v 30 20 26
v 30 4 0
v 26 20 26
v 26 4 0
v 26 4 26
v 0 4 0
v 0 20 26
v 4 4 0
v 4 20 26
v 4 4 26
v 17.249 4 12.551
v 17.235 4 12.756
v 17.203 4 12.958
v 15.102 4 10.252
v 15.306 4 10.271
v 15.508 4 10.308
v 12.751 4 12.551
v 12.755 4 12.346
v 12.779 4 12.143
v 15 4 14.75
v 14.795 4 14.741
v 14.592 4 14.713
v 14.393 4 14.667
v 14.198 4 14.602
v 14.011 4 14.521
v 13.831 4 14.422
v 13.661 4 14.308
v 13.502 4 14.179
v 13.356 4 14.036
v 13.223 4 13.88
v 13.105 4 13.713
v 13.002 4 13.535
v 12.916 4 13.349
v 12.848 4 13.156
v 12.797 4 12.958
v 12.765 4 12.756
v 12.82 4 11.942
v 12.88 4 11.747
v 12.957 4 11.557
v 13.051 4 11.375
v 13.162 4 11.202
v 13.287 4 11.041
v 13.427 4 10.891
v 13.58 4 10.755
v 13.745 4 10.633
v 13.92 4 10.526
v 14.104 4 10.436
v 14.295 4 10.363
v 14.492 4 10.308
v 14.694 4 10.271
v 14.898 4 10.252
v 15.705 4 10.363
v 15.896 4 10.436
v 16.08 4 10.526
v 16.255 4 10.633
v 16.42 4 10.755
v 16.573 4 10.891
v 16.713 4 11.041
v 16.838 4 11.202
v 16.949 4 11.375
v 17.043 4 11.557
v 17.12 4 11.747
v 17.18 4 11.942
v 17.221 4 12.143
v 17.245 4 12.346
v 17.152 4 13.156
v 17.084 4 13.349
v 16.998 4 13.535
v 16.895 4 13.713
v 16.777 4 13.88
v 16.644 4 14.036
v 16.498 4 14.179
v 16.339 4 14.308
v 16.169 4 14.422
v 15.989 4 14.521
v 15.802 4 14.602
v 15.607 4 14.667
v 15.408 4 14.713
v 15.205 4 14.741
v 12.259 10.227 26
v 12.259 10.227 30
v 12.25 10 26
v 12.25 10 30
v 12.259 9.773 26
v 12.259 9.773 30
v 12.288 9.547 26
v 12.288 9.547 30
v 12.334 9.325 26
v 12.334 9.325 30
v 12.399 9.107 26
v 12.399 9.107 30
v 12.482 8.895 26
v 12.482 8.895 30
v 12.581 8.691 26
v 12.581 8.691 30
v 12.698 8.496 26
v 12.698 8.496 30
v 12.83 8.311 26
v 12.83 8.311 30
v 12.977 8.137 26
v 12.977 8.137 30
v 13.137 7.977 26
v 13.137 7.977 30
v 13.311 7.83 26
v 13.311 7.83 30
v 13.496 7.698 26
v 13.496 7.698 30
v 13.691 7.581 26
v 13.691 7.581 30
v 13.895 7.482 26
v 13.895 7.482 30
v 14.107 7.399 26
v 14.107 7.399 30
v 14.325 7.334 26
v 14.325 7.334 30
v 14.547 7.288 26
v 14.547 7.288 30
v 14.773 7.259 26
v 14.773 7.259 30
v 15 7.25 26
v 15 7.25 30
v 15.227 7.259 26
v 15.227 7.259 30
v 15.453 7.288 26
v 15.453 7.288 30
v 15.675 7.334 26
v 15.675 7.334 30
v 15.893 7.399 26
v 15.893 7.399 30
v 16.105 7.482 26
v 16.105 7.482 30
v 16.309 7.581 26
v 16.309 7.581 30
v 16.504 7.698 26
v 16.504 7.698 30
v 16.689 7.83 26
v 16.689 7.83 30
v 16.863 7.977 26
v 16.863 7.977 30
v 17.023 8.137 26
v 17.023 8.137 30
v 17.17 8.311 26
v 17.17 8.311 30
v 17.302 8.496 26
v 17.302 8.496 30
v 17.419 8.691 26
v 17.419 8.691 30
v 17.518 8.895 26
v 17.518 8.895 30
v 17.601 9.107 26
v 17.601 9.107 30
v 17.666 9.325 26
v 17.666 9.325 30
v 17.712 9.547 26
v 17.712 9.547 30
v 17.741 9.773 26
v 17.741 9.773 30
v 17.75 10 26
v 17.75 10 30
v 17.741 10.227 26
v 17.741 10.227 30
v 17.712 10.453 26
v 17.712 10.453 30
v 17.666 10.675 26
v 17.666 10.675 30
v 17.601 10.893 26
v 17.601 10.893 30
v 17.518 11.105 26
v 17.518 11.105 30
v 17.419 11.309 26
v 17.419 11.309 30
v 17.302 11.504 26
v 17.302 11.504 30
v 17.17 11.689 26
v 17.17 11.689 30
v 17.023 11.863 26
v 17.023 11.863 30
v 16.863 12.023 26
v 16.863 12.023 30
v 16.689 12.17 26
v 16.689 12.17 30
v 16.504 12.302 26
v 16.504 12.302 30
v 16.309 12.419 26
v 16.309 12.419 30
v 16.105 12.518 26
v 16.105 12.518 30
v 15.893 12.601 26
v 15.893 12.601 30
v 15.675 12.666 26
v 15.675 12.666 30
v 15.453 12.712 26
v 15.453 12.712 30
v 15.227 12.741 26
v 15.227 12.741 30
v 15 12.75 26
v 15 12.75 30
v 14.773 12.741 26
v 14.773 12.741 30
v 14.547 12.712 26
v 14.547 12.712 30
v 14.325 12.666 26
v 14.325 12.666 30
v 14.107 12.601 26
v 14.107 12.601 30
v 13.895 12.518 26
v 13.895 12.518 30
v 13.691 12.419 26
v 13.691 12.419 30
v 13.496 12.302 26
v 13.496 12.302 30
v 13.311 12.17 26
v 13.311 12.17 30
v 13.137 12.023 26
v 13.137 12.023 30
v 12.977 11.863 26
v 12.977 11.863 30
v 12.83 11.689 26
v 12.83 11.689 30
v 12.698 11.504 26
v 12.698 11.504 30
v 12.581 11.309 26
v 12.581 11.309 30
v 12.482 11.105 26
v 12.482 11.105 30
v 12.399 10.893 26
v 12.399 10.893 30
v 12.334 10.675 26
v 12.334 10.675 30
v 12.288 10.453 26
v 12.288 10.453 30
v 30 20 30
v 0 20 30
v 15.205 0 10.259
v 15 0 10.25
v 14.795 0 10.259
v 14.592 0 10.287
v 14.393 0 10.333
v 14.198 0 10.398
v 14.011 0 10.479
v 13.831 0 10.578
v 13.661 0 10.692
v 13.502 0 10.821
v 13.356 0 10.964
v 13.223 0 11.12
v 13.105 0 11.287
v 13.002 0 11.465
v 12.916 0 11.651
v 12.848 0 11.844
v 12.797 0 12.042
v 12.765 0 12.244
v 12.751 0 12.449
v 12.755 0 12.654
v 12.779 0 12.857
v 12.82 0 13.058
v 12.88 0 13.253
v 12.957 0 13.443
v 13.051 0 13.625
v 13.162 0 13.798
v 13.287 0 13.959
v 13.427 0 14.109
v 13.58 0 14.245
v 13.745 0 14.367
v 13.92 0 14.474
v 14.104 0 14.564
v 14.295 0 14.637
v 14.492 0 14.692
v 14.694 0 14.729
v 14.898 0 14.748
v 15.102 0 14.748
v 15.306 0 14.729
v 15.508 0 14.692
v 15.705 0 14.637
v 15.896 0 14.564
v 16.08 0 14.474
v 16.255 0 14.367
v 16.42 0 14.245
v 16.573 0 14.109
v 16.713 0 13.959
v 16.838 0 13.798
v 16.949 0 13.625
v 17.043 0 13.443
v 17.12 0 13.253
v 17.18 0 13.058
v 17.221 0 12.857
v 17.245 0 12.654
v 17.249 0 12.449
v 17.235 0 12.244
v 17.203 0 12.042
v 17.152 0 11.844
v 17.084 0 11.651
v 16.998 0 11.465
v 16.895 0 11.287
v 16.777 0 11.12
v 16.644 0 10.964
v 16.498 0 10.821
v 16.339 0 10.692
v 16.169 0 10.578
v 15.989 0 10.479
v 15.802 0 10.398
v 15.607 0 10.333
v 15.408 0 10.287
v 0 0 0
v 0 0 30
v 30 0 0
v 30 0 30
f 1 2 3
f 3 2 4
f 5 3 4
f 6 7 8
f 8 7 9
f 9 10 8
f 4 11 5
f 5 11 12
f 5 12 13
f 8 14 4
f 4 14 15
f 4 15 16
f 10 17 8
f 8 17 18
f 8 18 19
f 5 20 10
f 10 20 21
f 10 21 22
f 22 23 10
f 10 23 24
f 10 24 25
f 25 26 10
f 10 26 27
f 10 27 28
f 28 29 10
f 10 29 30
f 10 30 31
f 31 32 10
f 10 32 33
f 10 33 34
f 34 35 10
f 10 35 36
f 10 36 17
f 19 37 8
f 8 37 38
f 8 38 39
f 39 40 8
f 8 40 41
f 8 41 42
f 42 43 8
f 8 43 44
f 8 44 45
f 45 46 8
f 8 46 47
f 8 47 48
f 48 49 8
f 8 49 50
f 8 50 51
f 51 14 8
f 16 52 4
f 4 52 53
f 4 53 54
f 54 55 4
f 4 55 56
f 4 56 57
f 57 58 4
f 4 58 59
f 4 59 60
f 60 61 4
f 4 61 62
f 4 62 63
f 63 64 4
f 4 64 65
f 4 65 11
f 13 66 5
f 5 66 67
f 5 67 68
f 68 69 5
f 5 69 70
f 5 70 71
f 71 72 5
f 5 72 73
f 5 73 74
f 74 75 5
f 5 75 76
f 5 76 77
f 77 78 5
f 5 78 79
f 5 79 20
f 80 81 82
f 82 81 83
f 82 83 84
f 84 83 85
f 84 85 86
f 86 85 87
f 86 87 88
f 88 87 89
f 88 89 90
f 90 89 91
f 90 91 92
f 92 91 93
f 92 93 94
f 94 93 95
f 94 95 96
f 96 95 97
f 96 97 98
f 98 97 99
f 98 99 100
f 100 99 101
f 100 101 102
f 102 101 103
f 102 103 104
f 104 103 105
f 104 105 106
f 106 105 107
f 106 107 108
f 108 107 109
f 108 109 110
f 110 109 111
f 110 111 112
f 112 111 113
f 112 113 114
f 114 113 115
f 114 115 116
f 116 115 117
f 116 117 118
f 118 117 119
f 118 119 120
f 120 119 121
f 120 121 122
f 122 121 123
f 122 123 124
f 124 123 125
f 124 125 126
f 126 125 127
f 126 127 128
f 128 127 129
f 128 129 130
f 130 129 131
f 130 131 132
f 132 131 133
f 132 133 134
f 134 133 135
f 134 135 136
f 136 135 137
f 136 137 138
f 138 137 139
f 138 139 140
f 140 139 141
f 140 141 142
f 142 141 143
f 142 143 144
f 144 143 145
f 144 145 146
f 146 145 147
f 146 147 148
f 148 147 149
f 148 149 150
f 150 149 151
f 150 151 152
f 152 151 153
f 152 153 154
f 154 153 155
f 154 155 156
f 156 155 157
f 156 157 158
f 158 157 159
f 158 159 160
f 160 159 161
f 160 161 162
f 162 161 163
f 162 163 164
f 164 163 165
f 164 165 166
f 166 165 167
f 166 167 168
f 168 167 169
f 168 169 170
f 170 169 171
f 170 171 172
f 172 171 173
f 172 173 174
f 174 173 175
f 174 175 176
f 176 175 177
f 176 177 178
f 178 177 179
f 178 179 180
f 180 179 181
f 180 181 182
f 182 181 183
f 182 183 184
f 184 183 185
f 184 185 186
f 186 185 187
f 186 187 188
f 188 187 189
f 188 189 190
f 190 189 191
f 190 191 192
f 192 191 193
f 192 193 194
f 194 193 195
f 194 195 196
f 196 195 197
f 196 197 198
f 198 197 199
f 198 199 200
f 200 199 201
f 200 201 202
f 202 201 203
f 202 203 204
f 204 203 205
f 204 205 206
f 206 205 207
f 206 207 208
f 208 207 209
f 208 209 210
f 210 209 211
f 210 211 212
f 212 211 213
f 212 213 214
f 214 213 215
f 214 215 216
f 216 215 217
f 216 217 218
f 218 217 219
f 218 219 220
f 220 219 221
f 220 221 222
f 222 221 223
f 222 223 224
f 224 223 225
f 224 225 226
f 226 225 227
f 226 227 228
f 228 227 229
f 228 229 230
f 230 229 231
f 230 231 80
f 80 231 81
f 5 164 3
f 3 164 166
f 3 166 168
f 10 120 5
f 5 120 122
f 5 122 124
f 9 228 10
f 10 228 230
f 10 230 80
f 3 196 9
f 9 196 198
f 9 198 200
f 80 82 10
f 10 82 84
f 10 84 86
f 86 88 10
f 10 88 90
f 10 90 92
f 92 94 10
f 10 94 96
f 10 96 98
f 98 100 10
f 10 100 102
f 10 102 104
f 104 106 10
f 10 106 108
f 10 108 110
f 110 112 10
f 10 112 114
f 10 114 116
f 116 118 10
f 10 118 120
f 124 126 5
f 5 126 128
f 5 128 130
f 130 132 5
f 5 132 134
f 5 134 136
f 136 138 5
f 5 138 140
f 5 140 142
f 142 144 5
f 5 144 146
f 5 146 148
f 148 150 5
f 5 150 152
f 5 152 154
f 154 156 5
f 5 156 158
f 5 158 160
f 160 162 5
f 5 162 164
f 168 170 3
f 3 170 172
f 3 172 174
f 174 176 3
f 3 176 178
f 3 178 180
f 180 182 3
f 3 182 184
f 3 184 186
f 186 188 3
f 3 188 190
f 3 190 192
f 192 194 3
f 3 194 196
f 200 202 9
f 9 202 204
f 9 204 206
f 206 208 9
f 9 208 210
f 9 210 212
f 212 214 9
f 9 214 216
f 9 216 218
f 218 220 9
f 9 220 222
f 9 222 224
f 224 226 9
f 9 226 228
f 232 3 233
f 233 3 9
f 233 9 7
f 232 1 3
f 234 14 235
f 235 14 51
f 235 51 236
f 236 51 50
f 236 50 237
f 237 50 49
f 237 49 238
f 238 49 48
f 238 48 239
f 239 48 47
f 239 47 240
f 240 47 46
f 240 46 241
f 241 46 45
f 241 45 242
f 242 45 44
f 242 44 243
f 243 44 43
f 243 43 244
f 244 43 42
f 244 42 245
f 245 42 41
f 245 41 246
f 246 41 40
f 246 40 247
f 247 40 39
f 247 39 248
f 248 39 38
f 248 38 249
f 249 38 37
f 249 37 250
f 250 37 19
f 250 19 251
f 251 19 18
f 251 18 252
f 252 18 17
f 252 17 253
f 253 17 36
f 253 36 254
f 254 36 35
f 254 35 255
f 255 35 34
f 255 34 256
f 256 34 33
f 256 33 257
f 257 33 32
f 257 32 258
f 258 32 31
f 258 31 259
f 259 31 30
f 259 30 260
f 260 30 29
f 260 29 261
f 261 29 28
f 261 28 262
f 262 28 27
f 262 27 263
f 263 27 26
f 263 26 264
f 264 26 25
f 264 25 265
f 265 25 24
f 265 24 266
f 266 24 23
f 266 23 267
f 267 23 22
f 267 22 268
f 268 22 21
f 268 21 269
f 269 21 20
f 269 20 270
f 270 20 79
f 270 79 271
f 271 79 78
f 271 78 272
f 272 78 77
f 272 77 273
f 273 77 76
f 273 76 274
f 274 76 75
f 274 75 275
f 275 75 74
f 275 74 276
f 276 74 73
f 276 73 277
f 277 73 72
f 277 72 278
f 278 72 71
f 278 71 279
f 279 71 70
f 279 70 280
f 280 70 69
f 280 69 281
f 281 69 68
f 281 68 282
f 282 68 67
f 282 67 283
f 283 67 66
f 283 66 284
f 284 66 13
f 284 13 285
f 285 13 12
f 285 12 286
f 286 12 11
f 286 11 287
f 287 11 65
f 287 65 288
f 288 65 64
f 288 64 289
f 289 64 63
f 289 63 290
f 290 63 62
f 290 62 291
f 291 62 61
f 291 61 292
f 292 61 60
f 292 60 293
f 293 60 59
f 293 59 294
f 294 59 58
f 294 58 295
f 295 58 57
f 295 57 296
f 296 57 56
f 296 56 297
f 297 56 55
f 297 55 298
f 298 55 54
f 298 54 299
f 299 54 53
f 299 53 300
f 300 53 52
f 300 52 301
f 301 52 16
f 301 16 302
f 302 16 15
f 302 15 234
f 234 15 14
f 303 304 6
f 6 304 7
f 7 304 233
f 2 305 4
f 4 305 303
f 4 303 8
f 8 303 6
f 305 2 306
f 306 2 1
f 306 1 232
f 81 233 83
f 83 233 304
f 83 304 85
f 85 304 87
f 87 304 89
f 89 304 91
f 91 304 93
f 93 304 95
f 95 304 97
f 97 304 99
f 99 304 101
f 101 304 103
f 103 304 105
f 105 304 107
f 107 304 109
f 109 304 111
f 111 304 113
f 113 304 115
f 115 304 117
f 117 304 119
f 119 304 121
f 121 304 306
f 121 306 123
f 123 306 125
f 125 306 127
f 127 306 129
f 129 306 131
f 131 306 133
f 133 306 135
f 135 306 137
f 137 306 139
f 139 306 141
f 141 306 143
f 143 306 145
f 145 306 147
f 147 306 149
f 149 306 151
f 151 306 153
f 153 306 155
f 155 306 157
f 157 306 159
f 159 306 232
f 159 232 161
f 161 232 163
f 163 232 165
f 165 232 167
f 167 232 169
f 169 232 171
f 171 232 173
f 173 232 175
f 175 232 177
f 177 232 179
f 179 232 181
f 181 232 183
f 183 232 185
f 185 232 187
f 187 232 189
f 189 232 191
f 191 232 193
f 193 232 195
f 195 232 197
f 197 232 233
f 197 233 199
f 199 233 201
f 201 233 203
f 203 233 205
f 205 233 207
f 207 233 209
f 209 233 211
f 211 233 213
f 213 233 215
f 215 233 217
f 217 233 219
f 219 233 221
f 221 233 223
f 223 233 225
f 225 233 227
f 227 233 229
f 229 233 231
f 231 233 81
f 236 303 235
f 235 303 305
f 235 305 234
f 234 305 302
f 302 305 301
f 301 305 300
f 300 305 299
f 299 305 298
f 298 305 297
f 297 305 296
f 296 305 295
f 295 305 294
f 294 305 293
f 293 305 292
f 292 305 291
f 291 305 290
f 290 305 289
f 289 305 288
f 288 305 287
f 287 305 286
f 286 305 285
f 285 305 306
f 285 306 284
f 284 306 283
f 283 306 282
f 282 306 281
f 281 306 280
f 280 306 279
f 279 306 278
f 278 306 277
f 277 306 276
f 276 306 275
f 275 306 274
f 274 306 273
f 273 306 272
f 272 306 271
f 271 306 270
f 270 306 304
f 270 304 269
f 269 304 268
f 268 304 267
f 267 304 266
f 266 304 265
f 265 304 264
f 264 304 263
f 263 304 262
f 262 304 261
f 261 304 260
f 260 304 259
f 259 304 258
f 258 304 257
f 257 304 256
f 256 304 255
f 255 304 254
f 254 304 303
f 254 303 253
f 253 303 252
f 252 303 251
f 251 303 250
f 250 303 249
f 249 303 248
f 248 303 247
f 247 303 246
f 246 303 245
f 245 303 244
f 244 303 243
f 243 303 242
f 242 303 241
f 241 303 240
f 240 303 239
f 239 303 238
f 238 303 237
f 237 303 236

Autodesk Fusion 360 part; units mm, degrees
sketch "Sketch1" plane through (0, 0, 0) normal (0, 1, 0) x (1, 0, 0)
  line L0 (0, 0) -> (30, 0)
  line L1 (30, 0) -> (30, -30)
  line L2 (30, -30) -> (0, -30)
  line L3 (0, -30) -> (0, 0)
  dimension "d1" = 30
  dimension "d2" = 30
extrude "Extrude1" add sketch "Sketch1" along normal blind 4
sketch "Sketch2" plane through (0, 4, 0) normal (0, 1, 0) x (-1, 0, 0)
  line L0 (0, 30) -> (-30, 30)
  line L1 (-30, 30) -> (-30, 0)
  line L2 (-30, 0) -> (0, 0)
  line L3 (0, 0) -> (0, 30)
  circle A0 centre (-15, 12.5) radius 2.25
  line L4 (0, 26) -> (-30, 26)
  dimension "d5" = 4.5
  dimension "d6" = 12.5
  dimension "d7" = 15
  dimension "d23" = 4
hole "Hole1" at (15, 4, 12.5) direction (0, -1, 0) diameter 4.5 end through all
extrude "Extrude6" add sketch "Sketch2" along normal blind 16 contours L0 L1 L3 L4
sketch "Sketch7" plane through (0, 0, 30) normal (0, 0, 1) x (1, 0, 0)
  line L0 (0, 0) -> (30, 0)
  line L1 (30, 0) -> (30, 20)
  line L2 (30, 20) -> (0, 20)
  line L3 (0, 20) -> (0, 0)
  circle A0 centre (15, 10) radius 2.75
  dimension "d26" = 5.5
  dimension "d27" = 10
extrude "Extrude7" cut sketch "Sketch7" against normal through all contours A0
sketch "Sketch8" plane through (0, 0, 0) normal (-1, 0, 0) x (0, 0, 1)
  line L0 (0, 0) -> (30, 0)
  line L1 (30, 0) -> (30, 20)
  line L2 (30, 20) -> (26, 20)
  line L3 (26, 20) -> (26, 4)
  line L4 (26, 4) -> (0, 4)
  line L5 (0, 4) -> (0, 0)
  line L6 (26, 20) -> (0, 4)
extrude "Extrude8" add sketch "Sketch8" against normal blind 4 contours L3 L4 L6
sketch "Sketch9" plane through (30, 0, 0) normal (1, 0, 0) x (0, 0, -1)
  line L0 (-30, 0) -> (0, 0)
  line L1 (0, 0) -> (0, 4)
  line L2 (0, 4) -> (-26, 4)
  line L3 (-26, 4) -> (-26, 20)
  line L4 (-26, 20) -> (-30, 20)
  line L5 (-30, 20) -> (-30, 0)
  line L6 (-26, 20) -> (0, 4)
extrude "Extrude9" add sketch "Sketch9" against normal blind 4 contours L2 L3 L6
